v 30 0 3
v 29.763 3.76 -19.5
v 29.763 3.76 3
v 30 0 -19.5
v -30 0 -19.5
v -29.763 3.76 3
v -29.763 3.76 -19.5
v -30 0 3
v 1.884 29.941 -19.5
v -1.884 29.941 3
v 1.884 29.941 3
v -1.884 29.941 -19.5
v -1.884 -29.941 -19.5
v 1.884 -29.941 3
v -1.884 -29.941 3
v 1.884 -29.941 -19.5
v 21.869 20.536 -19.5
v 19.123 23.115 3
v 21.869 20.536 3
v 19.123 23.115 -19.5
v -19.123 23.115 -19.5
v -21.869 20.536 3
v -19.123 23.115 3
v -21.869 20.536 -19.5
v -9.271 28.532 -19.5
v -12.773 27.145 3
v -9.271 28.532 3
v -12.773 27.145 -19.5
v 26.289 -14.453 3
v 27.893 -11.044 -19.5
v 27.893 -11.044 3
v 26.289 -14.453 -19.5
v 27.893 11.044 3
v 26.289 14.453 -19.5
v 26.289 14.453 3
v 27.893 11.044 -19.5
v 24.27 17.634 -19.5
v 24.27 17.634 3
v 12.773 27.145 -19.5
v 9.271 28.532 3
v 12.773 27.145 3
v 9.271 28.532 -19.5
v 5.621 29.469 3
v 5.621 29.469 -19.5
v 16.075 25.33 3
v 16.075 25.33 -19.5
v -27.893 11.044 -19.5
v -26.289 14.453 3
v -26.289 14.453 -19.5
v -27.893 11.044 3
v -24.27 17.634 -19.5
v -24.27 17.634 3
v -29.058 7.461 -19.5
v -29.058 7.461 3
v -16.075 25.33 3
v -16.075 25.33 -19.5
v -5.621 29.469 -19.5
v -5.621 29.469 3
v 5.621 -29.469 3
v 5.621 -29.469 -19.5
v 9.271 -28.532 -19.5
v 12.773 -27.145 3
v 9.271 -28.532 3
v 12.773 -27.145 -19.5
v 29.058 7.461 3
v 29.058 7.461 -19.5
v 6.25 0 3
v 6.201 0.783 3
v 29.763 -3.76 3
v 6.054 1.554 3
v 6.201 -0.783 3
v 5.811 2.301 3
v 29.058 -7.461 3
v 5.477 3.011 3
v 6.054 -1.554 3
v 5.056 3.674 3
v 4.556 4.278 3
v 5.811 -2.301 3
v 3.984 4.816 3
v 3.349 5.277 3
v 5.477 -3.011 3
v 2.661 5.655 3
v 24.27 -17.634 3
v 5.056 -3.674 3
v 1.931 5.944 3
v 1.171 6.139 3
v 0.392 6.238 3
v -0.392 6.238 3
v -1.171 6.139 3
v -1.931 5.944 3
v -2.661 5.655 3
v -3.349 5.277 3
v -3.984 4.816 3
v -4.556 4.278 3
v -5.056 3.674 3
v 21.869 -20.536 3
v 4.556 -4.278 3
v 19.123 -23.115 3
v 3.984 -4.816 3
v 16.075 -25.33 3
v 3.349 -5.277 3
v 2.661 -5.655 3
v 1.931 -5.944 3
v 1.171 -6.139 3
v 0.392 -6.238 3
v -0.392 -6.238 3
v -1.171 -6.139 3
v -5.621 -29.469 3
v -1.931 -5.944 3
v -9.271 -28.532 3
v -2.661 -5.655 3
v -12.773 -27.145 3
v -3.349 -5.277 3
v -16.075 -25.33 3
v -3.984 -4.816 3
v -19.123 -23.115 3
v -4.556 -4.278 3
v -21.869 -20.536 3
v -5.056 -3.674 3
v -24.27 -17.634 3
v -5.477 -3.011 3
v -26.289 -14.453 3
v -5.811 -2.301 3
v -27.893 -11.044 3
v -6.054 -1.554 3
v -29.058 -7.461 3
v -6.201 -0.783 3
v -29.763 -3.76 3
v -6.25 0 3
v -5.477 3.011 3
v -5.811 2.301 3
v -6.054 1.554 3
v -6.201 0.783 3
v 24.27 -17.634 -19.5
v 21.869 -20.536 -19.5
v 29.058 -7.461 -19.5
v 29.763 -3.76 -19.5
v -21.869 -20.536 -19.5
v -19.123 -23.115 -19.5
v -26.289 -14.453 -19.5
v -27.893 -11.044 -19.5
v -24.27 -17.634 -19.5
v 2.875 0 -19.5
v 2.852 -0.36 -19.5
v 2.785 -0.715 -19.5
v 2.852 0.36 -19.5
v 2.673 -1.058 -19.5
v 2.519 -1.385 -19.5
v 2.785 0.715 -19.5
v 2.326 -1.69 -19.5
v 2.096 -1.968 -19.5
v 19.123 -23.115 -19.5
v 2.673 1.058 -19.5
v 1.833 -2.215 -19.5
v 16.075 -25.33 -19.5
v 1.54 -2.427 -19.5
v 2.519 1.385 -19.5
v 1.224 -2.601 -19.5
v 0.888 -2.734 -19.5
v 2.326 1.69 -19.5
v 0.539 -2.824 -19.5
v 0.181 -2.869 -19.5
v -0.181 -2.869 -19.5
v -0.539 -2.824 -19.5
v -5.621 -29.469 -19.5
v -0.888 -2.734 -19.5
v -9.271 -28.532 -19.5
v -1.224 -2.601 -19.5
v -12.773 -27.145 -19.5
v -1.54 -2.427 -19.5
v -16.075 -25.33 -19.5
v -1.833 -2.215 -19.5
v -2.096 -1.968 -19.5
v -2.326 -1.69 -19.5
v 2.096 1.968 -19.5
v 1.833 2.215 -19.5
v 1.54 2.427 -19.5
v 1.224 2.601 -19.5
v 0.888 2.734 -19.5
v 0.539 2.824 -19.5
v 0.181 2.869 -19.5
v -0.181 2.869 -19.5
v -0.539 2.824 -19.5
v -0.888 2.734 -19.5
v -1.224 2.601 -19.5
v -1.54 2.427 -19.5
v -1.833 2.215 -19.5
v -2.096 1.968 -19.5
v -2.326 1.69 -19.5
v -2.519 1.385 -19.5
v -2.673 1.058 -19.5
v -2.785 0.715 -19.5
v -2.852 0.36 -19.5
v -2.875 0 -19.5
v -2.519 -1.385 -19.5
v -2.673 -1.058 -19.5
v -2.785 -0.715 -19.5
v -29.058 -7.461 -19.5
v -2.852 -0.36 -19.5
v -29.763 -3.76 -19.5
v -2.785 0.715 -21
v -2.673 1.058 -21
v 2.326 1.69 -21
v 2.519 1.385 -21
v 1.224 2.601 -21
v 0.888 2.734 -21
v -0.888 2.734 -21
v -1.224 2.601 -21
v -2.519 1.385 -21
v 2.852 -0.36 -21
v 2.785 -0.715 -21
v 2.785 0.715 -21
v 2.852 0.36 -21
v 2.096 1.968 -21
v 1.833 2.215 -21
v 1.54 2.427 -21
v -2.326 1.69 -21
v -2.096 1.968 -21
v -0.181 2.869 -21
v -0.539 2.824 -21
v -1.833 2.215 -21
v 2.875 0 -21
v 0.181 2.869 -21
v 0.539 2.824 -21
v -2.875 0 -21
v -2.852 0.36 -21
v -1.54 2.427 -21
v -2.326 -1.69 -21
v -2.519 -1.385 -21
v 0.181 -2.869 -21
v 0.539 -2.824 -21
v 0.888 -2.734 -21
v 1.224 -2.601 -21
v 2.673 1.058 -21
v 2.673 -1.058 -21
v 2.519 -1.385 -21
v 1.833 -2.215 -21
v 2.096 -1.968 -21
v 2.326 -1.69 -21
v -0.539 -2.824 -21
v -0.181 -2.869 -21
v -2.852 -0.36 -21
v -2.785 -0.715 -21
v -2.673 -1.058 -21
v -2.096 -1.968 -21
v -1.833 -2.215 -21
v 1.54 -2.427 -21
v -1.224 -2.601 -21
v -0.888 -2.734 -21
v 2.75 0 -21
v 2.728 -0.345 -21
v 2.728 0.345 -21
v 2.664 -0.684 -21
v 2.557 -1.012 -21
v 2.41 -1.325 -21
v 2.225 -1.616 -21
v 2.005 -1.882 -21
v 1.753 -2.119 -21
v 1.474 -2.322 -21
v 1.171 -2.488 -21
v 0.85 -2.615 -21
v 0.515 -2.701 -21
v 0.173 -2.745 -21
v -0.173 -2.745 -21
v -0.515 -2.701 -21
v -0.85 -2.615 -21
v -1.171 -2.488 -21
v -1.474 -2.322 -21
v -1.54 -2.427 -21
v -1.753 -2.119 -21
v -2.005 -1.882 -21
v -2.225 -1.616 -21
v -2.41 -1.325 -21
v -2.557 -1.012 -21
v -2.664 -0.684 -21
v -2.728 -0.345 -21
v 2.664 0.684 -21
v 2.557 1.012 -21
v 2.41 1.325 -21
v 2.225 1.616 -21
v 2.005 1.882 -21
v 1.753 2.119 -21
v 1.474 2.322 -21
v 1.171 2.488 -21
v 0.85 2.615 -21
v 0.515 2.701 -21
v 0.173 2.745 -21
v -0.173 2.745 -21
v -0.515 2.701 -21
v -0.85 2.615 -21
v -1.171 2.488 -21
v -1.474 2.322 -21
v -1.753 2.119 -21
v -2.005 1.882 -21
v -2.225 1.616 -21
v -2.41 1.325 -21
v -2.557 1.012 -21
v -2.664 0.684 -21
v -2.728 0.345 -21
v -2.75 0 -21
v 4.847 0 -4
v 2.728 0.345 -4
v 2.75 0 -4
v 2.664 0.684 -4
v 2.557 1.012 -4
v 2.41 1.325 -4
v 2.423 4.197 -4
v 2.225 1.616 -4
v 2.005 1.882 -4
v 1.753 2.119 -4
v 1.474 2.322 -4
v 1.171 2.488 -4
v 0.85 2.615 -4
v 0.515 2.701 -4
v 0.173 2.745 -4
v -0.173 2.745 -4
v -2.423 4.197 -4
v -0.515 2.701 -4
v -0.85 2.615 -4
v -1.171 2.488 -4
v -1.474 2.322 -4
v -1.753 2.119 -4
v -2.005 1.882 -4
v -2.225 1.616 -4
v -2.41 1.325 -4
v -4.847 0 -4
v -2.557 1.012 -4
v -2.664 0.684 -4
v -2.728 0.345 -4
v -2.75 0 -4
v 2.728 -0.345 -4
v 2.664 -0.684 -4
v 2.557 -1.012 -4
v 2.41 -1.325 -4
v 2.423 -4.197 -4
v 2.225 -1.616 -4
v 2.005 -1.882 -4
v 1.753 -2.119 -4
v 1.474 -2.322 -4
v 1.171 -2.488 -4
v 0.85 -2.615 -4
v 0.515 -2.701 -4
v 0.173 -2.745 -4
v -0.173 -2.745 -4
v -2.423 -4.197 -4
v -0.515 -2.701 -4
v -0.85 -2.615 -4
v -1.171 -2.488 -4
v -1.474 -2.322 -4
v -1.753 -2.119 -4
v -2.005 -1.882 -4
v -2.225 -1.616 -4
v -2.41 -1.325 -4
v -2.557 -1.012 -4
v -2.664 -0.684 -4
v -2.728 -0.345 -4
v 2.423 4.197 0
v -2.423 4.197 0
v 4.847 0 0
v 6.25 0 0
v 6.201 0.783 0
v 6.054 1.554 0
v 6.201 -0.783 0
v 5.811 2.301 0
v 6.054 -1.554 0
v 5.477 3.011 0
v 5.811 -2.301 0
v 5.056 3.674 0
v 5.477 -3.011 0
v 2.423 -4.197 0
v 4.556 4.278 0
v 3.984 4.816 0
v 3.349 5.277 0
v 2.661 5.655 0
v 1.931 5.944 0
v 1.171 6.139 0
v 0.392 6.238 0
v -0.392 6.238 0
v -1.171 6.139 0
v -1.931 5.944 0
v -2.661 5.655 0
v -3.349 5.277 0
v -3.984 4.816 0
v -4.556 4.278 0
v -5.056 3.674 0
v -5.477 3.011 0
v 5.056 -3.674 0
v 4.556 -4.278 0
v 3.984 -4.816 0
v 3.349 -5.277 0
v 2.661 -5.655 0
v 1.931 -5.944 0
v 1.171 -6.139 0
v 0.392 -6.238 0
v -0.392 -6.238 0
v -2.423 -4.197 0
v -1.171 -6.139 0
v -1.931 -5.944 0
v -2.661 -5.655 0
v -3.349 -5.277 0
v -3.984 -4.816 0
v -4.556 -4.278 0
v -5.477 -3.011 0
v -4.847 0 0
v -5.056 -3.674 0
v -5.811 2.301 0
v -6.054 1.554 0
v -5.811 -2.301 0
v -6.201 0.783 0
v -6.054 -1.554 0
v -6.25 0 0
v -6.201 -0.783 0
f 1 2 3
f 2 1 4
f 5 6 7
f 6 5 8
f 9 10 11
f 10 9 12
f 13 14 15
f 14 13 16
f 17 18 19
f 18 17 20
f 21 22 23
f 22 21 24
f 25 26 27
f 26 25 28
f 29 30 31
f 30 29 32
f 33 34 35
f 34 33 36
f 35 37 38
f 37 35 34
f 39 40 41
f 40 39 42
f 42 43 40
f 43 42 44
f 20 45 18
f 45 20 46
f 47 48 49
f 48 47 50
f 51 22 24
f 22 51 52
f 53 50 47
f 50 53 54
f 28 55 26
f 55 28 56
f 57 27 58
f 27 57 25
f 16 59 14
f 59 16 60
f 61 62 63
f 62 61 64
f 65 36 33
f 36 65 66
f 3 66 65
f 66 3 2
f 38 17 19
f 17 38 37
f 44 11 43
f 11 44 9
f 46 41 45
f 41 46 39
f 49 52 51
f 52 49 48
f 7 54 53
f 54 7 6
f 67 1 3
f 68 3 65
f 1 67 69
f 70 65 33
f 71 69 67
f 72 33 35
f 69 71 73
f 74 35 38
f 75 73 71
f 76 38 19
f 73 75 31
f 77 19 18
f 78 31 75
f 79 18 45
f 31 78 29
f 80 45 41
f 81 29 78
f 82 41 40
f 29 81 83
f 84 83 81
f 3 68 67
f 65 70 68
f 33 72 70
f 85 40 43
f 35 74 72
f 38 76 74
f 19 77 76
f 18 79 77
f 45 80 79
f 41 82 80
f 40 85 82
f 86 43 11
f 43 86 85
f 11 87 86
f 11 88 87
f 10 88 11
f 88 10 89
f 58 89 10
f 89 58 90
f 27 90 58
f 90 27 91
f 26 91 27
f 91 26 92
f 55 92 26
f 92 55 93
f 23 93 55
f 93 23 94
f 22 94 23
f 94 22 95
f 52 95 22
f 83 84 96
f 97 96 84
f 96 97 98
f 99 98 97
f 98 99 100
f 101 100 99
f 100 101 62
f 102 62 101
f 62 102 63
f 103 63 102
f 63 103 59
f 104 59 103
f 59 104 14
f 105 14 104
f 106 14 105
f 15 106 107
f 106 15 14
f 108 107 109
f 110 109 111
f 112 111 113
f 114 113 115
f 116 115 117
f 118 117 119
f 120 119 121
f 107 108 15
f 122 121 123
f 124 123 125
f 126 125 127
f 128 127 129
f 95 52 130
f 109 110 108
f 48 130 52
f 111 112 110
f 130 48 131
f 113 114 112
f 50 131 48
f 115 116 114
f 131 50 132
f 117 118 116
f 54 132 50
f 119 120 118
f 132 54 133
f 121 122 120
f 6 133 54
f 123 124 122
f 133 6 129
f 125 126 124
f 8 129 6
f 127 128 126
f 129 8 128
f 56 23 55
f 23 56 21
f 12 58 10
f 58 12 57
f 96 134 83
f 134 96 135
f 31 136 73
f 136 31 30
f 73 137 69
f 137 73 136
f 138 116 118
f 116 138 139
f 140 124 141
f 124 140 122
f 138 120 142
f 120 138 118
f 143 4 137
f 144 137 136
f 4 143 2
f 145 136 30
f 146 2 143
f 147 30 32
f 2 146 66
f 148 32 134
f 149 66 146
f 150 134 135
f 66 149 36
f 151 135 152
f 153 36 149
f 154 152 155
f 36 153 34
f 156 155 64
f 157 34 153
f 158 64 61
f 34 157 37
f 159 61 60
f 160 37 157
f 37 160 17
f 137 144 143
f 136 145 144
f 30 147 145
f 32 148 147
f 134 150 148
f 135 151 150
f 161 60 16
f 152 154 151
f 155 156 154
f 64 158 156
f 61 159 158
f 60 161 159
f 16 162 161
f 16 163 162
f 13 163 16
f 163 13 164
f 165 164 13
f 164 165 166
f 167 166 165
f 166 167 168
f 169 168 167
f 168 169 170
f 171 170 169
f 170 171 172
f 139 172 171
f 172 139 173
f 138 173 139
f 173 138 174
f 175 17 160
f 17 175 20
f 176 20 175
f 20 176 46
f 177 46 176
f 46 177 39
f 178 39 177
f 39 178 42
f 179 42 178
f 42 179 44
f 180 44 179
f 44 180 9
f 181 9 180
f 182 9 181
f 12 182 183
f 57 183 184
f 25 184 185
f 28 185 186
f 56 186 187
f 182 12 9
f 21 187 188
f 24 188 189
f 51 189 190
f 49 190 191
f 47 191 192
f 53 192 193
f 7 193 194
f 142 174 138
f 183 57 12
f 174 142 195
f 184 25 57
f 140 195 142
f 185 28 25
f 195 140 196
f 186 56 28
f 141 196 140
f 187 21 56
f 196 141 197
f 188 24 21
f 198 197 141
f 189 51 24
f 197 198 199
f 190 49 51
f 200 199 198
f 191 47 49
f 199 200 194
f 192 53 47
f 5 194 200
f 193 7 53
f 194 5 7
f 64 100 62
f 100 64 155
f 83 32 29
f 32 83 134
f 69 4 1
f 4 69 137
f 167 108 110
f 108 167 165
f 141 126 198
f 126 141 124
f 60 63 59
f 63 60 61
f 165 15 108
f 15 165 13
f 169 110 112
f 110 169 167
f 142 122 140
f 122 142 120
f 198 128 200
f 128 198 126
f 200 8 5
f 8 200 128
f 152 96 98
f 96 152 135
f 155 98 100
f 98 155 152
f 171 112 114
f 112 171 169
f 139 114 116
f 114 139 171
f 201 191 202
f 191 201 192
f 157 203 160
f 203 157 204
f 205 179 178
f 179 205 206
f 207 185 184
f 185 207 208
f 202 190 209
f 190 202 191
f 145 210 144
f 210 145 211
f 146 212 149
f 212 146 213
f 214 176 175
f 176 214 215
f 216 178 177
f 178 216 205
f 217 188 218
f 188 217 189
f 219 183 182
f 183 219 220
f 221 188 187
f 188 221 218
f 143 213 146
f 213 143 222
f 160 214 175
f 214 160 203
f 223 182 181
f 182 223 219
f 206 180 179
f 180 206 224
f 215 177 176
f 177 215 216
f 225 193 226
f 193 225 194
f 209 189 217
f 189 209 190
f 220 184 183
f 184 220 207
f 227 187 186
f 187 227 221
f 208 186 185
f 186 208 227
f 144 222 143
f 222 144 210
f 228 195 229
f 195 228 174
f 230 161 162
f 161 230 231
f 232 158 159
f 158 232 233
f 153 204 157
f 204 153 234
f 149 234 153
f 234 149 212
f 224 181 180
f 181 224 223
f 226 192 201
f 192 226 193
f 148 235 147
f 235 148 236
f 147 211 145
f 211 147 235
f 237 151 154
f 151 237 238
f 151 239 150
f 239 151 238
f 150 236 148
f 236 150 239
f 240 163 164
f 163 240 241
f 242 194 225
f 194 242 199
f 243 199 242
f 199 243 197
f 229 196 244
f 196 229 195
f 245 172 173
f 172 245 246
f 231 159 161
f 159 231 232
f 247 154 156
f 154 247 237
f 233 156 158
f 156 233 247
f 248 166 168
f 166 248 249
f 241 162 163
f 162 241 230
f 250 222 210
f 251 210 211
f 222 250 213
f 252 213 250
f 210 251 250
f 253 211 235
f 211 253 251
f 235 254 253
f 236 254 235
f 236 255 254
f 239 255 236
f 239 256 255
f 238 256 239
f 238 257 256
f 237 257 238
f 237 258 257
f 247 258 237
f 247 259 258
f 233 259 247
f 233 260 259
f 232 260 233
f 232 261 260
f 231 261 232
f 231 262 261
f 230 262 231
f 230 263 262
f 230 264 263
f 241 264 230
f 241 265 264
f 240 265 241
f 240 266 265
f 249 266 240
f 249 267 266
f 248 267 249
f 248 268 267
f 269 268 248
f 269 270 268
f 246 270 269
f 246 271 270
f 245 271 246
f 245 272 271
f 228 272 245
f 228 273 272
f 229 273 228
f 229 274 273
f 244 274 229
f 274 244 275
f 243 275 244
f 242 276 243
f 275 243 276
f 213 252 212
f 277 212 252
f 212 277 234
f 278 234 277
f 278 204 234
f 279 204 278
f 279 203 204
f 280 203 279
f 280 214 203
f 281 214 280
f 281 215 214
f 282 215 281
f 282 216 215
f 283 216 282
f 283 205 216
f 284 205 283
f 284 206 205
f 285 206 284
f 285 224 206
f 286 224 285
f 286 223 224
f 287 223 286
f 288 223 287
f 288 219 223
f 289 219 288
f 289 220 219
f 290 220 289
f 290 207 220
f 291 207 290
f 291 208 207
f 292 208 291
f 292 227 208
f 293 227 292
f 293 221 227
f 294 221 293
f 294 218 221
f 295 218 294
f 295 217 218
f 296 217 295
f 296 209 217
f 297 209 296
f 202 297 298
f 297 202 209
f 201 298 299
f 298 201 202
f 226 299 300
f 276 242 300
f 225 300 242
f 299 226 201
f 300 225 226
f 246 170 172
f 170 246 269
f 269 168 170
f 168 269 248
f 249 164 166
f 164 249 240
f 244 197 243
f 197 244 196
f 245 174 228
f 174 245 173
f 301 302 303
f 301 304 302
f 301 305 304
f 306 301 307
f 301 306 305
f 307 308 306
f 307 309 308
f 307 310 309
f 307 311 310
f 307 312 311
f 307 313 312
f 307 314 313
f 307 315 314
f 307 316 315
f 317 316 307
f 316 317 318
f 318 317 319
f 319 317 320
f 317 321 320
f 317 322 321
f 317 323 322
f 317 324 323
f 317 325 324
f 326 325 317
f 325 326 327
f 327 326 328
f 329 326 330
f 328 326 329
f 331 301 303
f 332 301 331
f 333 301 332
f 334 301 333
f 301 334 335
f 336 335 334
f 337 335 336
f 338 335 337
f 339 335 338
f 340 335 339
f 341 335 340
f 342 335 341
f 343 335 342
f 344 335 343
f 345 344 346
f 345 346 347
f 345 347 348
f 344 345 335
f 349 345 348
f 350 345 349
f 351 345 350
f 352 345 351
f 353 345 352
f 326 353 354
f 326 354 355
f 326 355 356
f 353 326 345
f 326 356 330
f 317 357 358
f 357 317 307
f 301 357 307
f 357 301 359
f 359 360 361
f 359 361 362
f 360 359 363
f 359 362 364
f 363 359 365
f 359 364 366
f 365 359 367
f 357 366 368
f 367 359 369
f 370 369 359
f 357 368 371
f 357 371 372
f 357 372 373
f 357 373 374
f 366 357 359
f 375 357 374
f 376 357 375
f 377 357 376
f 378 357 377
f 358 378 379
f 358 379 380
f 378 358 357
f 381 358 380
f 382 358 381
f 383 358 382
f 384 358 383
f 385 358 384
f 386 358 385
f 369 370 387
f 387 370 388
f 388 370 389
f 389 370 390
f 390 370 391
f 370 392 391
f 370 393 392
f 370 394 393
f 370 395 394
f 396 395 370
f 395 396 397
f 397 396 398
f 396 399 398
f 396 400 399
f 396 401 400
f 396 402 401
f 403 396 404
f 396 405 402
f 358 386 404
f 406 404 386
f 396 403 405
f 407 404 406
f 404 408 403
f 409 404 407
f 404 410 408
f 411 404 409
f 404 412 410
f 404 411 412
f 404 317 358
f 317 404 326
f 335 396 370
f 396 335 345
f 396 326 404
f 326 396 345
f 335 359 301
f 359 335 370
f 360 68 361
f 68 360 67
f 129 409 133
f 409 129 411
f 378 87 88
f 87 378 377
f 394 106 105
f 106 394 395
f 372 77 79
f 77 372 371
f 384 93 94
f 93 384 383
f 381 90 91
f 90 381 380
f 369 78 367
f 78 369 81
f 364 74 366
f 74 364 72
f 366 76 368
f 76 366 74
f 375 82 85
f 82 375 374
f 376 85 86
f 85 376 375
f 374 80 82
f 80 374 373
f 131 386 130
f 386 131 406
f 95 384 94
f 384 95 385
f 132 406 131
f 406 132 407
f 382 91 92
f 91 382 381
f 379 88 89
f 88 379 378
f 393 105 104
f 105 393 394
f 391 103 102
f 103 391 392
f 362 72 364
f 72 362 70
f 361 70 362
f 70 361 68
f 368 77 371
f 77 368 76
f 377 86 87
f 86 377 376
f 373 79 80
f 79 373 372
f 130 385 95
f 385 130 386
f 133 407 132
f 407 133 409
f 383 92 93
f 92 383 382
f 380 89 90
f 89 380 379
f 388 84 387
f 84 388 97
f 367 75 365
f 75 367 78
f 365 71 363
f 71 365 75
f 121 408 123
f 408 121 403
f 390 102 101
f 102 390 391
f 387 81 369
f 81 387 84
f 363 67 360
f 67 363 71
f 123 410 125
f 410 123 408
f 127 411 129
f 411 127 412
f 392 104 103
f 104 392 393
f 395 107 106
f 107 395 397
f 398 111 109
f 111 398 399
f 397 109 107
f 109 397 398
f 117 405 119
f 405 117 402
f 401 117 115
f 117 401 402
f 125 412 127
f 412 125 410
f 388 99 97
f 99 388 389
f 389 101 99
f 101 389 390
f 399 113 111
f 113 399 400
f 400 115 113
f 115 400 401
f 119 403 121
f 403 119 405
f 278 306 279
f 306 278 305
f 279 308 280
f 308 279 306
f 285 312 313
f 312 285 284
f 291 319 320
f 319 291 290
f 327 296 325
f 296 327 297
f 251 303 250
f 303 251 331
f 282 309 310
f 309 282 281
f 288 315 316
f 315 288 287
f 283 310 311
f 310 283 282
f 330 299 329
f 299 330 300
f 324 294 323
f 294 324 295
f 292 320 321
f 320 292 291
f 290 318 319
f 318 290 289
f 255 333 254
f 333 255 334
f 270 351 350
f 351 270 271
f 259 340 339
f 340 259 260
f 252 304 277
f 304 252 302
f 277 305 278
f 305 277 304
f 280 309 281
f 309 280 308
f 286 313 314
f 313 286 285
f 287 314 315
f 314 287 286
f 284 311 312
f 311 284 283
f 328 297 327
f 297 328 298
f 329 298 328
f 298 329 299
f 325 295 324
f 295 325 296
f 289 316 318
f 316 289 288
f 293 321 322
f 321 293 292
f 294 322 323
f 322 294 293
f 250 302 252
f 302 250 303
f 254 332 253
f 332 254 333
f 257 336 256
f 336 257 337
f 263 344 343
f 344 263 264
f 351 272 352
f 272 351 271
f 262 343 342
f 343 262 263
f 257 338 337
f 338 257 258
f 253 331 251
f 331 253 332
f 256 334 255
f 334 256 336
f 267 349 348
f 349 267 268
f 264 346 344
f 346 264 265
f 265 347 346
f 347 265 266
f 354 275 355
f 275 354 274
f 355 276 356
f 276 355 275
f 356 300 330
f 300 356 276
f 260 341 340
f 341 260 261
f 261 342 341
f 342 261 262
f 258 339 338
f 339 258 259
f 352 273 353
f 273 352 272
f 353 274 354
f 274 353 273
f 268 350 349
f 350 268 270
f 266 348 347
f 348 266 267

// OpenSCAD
$fn = 50;

difference() {
	union() {
		translate(v = [0, 0, -19.5]) {
			cylinder(h = 22.5, r = 30.0);
		}
		#translate(v = [0, 0, -21.0]) {
			cylinder(h = 21, r = 2.875);
		}
	}
	union() {
		translate(v = [0, 0, 0]) {
			rotate(a = [0, 0, 0]) {
				difference() {
					union() {
						translate(v = [0, 0, -4]) {
							linear_extrude(height = 4) {
								polygon(points = [[4.8468, 0.0], [2.4234000000000004, 4.197451927062417], [-2.423399999999999, 4.197451927062417], [-4.8468, 5.935618106107392e-16], [-2.423400000000002, -4.197451927062416], [2.423399999999997, -4.197451927062419]]);
							}
						}
					}
					union();
				}
			}
		}
		#cylinder(h = 3, r = 6.25);
		#translate(v = [0, 0, -100.0]) {
			cylinder(h = 200, r = 2.75);
		}
	}
}
